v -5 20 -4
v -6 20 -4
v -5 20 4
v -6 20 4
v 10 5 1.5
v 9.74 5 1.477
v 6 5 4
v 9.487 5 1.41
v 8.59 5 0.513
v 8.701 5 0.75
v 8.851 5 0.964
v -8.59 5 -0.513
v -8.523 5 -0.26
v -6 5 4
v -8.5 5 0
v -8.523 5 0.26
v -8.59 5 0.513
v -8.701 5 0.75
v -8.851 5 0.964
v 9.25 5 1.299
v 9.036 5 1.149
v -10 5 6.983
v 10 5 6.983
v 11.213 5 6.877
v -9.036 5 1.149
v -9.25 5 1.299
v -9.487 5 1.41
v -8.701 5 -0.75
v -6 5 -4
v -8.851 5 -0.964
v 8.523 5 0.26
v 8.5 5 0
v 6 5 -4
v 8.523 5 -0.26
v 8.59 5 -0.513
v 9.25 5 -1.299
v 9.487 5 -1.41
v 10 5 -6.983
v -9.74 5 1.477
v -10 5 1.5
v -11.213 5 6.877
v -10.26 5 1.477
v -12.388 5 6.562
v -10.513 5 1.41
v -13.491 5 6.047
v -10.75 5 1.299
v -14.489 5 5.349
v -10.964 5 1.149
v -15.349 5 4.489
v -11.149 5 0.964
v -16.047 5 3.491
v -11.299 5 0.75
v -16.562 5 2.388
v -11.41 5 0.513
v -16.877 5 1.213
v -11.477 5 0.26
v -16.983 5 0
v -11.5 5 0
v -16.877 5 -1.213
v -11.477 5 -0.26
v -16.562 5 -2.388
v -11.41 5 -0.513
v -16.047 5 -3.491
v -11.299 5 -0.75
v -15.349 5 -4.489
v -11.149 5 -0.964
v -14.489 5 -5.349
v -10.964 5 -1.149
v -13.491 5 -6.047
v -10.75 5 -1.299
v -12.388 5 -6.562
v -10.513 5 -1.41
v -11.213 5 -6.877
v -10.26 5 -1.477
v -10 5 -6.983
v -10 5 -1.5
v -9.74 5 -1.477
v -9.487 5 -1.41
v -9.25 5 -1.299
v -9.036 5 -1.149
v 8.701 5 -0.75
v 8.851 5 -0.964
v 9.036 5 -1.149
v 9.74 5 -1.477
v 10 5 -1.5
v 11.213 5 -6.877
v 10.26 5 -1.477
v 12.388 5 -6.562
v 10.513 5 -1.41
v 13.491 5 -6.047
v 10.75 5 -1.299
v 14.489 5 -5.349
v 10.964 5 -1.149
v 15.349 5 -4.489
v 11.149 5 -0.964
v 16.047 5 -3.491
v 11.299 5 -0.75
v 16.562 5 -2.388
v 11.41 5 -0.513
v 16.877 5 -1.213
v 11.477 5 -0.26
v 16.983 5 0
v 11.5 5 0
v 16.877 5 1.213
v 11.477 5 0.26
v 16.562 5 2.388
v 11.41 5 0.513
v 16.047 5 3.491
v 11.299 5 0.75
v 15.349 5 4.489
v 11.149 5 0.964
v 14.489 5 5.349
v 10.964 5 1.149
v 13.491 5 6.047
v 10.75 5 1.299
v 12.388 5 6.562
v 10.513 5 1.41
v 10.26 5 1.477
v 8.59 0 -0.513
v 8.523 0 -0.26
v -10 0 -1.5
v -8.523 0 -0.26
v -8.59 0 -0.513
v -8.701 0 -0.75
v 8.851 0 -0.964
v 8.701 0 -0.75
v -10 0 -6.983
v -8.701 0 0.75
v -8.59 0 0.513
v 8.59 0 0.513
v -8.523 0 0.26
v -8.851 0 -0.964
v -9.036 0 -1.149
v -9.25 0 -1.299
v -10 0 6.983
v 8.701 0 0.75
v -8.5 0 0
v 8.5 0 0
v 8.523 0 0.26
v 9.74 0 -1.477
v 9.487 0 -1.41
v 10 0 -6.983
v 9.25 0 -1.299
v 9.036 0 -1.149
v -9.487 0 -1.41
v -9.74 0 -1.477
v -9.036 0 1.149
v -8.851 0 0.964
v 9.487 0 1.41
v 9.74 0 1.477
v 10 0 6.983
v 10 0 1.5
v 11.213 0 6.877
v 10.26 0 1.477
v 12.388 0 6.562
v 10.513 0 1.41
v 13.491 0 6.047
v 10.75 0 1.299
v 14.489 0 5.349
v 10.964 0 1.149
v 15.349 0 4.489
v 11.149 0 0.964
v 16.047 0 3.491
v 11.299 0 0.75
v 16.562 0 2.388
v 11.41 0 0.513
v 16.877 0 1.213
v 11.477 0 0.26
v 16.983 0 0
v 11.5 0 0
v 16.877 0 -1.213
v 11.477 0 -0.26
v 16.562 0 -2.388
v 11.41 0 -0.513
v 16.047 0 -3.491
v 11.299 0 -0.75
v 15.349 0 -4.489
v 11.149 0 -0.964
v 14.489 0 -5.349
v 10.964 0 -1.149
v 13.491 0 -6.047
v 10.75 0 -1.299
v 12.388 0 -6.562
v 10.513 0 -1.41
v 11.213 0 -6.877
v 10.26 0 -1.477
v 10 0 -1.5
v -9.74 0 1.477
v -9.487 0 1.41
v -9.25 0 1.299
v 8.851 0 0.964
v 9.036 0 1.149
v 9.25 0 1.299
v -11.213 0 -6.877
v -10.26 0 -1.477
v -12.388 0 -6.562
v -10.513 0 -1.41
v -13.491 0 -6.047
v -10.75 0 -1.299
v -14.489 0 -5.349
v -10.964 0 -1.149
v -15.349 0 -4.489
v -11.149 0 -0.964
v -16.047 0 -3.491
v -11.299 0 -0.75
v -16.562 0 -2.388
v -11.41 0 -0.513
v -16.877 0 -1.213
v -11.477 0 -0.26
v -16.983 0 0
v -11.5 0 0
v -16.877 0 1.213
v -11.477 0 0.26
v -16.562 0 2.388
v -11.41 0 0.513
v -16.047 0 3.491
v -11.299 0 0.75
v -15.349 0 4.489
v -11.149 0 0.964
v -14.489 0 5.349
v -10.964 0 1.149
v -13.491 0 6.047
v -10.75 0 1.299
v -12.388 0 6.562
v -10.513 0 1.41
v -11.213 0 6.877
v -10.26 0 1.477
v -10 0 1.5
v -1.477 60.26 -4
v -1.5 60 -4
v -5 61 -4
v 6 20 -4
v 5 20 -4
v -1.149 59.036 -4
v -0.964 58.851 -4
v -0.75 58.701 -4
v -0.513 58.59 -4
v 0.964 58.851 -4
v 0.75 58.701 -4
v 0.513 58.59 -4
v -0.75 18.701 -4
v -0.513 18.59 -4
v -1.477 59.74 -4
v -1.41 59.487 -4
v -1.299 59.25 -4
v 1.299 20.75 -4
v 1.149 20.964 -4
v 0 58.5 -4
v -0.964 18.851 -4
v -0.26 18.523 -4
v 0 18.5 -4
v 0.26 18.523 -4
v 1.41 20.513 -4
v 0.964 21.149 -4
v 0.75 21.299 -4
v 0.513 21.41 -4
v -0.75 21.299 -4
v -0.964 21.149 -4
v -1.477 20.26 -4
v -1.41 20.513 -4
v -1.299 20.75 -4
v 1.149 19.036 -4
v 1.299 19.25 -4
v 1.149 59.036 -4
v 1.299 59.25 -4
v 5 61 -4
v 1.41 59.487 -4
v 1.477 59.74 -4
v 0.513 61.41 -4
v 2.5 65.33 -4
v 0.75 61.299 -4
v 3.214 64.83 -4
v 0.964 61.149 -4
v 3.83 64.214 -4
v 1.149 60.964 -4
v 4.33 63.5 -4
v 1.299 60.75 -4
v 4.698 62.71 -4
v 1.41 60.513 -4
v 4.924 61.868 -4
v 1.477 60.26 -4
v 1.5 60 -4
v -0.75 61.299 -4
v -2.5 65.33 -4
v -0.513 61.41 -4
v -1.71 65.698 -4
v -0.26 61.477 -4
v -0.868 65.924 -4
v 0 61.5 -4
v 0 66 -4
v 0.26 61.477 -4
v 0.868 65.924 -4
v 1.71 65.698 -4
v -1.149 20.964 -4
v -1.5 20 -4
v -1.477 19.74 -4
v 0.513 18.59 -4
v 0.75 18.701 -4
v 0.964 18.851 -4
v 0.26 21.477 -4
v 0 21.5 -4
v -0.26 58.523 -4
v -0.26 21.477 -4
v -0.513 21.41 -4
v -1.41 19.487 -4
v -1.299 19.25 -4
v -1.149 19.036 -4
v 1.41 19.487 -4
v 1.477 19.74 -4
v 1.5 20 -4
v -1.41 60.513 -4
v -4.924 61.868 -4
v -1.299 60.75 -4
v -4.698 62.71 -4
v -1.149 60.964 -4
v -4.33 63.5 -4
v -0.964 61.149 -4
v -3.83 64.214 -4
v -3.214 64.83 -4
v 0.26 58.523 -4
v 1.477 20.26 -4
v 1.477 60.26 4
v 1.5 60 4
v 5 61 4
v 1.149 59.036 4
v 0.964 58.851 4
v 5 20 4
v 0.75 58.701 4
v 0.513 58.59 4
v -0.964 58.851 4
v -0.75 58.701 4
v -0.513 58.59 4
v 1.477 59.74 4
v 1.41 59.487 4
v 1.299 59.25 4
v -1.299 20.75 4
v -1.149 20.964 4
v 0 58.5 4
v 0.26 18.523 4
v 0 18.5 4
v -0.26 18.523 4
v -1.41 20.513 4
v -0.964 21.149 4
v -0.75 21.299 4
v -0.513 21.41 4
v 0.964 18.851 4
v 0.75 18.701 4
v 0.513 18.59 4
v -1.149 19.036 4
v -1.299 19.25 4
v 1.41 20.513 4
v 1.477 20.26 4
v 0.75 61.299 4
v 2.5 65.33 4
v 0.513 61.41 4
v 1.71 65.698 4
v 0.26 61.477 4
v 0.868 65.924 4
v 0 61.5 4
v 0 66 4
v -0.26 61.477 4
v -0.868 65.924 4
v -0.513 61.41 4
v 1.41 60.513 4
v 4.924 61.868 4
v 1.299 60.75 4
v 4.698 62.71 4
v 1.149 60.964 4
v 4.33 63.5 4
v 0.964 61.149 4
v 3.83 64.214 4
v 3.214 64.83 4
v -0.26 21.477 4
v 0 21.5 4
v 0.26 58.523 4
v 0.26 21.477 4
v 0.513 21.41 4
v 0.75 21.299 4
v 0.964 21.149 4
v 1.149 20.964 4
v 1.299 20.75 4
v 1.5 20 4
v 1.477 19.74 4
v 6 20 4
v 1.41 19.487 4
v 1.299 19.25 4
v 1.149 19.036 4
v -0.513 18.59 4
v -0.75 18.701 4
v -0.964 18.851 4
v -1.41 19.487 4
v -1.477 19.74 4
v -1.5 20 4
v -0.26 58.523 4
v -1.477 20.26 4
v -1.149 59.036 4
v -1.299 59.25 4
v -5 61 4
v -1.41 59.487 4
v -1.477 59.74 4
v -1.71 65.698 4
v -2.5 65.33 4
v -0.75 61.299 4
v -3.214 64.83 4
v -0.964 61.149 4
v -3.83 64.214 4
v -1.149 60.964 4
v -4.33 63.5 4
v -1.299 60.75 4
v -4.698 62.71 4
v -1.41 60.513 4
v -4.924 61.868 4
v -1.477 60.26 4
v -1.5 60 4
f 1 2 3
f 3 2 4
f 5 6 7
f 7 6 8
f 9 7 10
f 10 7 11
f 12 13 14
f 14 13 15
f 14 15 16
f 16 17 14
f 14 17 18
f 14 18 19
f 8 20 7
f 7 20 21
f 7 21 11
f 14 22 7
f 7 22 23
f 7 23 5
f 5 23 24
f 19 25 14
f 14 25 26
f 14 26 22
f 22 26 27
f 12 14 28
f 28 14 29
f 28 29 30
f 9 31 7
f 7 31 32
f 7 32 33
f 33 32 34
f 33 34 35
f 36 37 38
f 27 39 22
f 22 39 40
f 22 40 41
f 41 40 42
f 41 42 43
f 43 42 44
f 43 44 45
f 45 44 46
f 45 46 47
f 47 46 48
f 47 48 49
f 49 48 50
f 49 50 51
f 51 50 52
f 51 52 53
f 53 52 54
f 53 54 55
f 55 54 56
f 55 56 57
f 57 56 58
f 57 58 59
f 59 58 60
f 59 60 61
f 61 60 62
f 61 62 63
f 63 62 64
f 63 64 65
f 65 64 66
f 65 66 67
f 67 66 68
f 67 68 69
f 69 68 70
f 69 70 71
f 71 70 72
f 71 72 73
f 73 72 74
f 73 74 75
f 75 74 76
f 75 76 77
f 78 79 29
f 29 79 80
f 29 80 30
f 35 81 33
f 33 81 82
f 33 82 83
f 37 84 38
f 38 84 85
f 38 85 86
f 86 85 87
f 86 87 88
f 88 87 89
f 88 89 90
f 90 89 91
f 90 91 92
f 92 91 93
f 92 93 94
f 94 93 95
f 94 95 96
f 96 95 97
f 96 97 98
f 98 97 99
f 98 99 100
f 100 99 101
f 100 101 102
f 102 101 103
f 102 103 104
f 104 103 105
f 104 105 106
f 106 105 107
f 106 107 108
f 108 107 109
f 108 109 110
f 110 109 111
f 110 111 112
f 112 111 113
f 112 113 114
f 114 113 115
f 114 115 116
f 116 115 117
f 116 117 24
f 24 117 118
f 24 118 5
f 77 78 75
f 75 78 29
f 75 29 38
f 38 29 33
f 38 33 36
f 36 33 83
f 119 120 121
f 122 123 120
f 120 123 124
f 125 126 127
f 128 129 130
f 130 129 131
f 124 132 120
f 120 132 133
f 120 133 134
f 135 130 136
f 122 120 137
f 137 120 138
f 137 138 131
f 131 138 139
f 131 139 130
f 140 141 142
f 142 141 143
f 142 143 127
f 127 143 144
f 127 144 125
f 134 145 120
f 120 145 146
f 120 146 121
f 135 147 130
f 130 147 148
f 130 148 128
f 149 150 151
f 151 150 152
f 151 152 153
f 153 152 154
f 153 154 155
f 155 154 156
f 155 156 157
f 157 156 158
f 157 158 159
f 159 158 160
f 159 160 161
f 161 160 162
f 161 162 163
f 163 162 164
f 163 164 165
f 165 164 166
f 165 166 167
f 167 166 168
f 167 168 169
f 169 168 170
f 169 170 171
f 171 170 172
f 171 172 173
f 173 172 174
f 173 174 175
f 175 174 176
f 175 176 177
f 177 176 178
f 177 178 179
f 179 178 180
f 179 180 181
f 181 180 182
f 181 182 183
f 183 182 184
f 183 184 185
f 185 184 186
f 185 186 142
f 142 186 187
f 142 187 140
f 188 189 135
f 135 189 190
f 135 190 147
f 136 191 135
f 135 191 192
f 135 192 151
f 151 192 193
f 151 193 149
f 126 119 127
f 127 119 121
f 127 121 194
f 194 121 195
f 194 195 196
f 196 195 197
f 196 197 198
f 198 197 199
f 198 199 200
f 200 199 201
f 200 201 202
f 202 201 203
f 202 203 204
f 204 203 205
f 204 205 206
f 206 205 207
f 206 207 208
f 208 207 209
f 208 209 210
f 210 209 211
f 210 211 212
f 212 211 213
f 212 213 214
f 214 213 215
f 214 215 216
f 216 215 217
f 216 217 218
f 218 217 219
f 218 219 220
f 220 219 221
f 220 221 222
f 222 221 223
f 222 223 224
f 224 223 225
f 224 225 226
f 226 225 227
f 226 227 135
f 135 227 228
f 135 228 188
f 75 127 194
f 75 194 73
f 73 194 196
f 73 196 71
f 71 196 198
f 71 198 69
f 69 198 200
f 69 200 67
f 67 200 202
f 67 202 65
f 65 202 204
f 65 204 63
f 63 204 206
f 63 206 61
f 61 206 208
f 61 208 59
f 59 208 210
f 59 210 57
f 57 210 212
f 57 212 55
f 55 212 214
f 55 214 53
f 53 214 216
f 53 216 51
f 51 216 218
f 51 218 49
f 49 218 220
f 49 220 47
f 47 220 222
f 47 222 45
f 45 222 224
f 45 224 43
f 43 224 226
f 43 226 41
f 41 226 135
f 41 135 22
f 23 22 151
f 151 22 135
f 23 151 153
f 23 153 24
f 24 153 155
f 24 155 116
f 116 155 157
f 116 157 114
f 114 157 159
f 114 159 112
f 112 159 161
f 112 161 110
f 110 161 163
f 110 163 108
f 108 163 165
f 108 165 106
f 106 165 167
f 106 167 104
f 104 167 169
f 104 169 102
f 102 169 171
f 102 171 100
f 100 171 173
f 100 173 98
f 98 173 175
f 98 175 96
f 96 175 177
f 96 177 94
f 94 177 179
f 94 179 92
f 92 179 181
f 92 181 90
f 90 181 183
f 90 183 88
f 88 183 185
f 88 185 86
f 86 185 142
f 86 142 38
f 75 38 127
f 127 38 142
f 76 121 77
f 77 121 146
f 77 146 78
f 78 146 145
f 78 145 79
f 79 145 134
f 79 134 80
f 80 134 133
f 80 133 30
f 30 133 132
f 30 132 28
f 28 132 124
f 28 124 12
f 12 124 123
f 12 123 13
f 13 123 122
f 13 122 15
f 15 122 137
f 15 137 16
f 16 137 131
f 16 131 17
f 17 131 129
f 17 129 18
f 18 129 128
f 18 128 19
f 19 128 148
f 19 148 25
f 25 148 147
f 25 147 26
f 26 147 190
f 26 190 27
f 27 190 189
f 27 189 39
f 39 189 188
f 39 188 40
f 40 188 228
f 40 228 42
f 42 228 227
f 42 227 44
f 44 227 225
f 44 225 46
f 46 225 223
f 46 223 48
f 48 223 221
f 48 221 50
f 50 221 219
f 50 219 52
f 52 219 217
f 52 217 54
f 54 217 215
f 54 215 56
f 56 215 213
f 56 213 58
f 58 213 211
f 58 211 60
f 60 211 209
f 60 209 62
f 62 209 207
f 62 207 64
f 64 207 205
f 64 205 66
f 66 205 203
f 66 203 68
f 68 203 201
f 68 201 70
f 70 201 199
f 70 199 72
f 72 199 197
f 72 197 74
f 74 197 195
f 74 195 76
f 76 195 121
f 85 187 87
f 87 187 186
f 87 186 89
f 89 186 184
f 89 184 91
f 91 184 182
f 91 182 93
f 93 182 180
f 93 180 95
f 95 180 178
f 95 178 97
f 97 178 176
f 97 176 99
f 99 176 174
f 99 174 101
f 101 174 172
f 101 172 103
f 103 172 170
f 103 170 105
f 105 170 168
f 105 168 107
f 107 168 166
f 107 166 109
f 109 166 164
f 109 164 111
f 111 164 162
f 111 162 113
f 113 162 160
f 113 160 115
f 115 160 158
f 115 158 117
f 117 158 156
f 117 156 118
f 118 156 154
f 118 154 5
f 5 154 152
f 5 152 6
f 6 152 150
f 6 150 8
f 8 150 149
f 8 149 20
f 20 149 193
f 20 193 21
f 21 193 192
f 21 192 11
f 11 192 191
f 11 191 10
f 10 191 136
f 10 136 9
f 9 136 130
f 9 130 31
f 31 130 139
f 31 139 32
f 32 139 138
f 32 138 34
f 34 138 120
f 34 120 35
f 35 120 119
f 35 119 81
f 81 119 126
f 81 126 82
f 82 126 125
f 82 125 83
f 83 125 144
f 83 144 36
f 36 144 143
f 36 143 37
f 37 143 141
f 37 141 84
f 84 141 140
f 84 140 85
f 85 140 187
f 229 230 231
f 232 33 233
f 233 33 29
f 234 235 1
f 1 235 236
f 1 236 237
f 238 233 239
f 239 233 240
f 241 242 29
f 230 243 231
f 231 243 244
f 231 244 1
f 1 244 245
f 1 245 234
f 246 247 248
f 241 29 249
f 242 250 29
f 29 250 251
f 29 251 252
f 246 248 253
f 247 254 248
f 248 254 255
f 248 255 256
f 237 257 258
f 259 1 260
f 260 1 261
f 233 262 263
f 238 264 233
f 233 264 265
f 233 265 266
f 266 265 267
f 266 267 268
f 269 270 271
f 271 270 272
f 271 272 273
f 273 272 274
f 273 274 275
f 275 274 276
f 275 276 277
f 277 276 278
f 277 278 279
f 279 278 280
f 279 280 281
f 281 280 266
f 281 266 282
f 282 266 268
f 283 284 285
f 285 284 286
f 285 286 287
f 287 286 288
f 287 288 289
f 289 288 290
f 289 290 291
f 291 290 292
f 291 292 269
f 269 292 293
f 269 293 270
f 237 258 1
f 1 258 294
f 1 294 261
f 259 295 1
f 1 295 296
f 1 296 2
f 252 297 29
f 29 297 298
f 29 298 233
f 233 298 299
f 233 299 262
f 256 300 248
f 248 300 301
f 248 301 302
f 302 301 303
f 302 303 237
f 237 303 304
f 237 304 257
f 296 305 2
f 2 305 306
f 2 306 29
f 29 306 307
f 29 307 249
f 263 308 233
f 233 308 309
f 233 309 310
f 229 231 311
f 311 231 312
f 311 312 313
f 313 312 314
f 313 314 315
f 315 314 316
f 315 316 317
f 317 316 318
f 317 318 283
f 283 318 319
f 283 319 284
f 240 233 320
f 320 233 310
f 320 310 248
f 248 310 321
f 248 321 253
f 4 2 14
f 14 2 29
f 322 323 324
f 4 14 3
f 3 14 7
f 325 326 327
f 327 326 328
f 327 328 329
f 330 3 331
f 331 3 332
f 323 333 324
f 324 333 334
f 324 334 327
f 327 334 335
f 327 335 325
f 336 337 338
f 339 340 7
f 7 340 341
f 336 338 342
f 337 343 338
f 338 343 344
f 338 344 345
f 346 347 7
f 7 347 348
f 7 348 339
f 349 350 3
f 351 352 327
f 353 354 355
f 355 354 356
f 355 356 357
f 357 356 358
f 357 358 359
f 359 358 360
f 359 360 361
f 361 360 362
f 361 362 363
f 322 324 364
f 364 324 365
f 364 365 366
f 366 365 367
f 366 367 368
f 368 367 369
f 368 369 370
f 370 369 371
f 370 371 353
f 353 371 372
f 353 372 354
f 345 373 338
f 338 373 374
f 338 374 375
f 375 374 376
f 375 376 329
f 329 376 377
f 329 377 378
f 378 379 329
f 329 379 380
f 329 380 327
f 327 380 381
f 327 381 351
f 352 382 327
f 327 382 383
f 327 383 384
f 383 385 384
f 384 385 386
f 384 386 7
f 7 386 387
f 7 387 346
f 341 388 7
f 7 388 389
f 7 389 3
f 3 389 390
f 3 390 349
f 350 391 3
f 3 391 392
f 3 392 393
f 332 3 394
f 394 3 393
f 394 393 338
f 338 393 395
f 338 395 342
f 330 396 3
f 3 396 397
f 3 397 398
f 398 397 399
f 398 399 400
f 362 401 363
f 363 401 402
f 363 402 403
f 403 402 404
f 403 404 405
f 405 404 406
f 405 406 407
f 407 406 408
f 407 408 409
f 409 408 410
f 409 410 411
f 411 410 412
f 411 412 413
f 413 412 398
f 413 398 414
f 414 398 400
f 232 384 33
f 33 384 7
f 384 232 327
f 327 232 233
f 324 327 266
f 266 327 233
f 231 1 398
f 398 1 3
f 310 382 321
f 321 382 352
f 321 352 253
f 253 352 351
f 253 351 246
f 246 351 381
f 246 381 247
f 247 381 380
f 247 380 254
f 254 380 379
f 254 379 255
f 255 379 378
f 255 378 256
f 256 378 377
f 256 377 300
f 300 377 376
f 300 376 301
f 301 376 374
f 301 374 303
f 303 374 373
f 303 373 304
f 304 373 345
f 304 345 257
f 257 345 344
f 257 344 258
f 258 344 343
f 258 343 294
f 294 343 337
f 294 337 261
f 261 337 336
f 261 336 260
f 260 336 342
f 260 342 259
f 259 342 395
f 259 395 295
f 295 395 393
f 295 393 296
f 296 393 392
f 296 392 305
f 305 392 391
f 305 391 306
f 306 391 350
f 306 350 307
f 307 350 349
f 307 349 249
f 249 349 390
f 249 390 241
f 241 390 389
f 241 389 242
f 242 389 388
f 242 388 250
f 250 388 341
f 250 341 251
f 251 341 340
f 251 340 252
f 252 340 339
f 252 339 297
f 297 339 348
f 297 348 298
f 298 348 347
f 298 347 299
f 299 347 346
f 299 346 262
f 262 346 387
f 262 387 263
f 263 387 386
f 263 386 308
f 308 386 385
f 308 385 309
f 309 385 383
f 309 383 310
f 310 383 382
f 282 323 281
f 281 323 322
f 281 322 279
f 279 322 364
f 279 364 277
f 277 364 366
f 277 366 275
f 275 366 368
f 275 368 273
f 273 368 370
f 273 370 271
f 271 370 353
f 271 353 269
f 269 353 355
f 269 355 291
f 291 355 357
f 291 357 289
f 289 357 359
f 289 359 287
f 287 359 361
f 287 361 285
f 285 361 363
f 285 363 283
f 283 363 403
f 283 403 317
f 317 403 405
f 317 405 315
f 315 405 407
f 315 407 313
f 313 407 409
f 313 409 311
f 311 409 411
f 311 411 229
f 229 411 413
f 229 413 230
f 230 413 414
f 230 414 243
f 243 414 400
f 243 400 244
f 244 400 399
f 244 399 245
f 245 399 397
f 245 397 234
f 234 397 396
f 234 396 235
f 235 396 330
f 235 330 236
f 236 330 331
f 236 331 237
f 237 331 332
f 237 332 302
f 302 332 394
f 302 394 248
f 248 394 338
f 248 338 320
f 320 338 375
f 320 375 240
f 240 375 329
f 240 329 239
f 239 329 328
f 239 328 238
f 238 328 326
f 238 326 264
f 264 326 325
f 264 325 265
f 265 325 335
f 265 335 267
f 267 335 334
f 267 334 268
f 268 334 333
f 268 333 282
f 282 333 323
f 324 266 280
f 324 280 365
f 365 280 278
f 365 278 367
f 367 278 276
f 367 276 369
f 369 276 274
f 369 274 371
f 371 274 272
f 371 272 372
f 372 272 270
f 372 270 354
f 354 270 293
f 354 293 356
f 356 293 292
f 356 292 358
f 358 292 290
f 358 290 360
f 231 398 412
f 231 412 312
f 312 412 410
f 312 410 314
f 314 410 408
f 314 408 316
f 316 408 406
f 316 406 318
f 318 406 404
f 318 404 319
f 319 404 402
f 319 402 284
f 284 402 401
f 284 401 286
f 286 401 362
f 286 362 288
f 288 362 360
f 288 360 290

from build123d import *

# Parameters (mm, degrees)
SKETCH1_R           = 1.5
BOSS_EXTRUDE1_DEPTH = 5
SKETCH3_W           = 12
SKETCH3_H           = 8
BOSS_EXTRUDE3_DEPTH = 15
BOSS_EXTRUDE4_START = -8
SKETCH4_W           = 10
SKETCH4_H           = 50.375497142
SKETCH4_R           = 1.5
BOSS_EXTRUDE4_DEPTH = 8
FILLET1_R           = 5
CUT_EXTRUDE1_START  = -8
SKETCH5_R           = 1.5
CUT_EXTRUDE1_DEPTH  = 8


with BuildPart() as part:
    # Sketch1 → Boss-Extrude1 (new body)
    with BuildSketch(Plane(origin=(0, 0, 0), x_dir=(1, 0, 0), z_dir=(0, 1, 0))):
        with BuildLine():
            Line((-10, 6.982882733), (10, 6.982882733))
            ThreePointArc((10, 6.982882733), (16.982882733, 0), (10, -6.982882733))
            Line((10, -6.982882733), (-10, -6.982882733))
            ThreePointArc((-10, -6.982882733), (-16.982882733, 0), (-10, 6.982882733))
        make_face()
        with Locations(Location((-10, 0, 0), (0, 0, 270))):
            Circle(SKETCH1_R, mode=Mode.SUBTRACT)
        with Locations(Location((10, 0, 0), (0, 0, 270))):
            Circle(SKETCH1_R, mode=Mode.SUBTRACT)
    extrude(amount=BOSS_EXTRUDE1_DEPTH)

    # Sketch3 → Boss-Extrude3 (add)
    with BuildSketch(Plane(origin=(0, 5, 0), x_dir=(1, 0, 0), z_dir=(0, 1, 0))):
        Rectangle(SKETCH3_W, SKETCH3_H)
    extrude(amount=BOSS_EXTRUDE3_DEPTH)

    # Sketch4 → Boss-Extrude4 (add)
    with BuildSketch(Plane.XY.offset(4).offset(BOSS_EXTRUDE4_START)):
        with Locations((0, 40.812251429)):
            Rectangle(SKETCH4_W, SKETCH4_H)
        with Locations((0, 20)):
            Circle(SKETCH4_R, mode=Mode.SUBTRACT)
        with Locations((0, 60)):
            Circle(SKETCH4_R, mode=Mode.SUBTRACT)
    extrude(amount=BOSS_EXTRUDE4_DEPTH)

    # Fillet1
    fillet1_edges = [part.edges().sort_by_distance(p)[0] for p in [
        (-5, 66, 0),
        (5, 66, 0),
    ]]
    fillet(fillet1_edges, radius=FILLET1_R - 0.0001)  # a hair under: the kernel refuses the full size

    # Sketch5 → Cut-Extrude1 (cut)
    with BuildSketch(Plane.XY.offset(4).offset(CUT_EXTRUDE1_START)):
        with Locations((0, 20)):
            Circle(SKETCH5_R)
    extrude(amount=CUT_EXTRUDE1_DEPTH, mode=Mode.SUBTRACT)


solid = part.part
